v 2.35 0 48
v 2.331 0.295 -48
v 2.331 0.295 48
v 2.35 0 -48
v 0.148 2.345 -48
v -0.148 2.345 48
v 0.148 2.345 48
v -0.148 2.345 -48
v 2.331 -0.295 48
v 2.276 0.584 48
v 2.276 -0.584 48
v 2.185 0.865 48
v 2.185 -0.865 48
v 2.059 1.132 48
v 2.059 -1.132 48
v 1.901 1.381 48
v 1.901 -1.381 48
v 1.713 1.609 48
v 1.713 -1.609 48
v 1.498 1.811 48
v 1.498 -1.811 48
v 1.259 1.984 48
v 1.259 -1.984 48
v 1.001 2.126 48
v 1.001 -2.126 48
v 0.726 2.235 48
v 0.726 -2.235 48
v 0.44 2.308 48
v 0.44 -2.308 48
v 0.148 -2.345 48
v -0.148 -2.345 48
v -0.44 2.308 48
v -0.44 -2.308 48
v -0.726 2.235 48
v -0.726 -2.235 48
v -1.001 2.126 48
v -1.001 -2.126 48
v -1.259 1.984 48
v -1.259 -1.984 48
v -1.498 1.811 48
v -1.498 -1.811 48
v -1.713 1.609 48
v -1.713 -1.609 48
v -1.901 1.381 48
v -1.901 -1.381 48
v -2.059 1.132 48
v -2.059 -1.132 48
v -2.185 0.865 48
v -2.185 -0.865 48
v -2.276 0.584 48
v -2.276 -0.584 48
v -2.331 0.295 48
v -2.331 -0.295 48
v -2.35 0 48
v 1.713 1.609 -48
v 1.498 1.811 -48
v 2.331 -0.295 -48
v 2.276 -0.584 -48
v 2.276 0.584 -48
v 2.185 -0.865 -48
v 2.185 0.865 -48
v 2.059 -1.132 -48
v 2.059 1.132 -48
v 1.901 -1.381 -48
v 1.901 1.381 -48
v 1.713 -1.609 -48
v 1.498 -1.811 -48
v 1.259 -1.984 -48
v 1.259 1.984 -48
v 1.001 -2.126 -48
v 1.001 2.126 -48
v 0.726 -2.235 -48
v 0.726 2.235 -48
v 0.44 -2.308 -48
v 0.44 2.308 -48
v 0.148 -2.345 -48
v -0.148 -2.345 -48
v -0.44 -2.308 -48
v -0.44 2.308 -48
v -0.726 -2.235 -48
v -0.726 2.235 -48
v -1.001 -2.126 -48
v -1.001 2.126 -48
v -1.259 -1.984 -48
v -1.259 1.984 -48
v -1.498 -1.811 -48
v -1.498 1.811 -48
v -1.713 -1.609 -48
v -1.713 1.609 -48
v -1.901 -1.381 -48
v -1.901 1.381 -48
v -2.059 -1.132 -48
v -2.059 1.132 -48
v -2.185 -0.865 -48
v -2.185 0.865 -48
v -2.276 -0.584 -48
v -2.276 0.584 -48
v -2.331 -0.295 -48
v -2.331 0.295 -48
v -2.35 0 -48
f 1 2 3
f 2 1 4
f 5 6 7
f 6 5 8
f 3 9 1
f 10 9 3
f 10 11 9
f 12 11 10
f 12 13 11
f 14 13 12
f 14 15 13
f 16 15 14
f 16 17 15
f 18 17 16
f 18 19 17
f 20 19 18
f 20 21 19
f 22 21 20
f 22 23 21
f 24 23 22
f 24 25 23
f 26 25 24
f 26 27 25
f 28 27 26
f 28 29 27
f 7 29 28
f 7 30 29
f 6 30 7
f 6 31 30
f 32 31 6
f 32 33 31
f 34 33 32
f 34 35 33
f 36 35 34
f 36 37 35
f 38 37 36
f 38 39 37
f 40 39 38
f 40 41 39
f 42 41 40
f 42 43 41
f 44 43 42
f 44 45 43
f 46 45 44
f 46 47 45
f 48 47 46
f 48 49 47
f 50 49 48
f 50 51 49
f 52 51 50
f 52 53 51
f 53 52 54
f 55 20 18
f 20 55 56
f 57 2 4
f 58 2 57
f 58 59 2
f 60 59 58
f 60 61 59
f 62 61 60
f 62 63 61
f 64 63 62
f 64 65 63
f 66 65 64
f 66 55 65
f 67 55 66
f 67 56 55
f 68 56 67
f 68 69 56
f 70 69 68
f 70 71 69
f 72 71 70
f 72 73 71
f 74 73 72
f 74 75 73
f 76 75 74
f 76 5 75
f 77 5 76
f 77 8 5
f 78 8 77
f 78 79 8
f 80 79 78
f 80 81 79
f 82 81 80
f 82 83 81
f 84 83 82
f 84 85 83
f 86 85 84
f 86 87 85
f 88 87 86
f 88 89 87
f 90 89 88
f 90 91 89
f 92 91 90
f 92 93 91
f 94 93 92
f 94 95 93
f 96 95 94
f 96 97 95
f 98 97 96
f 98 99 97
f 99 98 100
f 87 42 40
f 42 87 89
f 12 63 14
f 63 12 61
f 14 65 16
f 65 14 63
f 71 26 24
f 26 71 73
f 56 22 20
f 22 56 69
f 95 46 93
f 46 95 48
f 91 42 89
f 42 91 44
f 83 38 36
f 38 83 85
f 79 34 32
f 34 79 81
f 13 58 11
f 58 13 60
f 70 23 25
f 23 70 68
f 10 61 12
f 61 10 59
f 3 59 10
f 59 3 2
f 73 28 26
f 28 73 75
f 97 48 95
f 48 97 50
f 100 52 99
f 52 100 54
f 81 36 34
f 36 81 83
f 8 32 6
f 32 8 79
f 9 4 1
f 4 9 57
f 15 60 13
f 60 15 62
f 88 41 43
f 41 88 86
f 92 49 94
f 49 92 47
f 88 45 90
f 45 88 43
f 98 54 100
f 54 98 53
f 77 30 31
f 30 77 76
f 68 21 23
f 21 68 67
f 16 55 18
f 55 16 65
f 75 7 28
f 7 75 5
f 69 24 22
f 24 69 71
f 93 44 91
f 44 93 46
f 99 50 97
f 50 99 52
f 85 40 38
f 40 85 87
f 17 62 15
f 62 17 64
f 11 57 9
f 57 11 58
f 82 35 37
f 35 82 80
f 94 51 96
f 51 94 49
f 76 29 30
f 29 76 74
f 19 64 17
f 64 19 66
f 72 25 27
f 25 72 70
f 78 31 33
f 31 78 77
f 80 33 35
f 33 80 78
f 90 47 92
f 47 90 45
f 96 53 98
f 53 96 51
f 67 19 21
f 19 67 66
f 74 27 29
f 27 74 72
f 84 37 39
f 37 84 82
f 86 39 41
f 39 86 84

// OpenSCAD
$fn = 50;


difference() {
	union() {
		translate(v = [0, 0, -48.0000000000]) {
			cylinder(h = 96, r = 2.3500000000);
		}
	}
	union() {
		translate(v = [0, 0, -100.0000000000]) {
			cylinder(h = 200, r = 0);
		}
	}
}
